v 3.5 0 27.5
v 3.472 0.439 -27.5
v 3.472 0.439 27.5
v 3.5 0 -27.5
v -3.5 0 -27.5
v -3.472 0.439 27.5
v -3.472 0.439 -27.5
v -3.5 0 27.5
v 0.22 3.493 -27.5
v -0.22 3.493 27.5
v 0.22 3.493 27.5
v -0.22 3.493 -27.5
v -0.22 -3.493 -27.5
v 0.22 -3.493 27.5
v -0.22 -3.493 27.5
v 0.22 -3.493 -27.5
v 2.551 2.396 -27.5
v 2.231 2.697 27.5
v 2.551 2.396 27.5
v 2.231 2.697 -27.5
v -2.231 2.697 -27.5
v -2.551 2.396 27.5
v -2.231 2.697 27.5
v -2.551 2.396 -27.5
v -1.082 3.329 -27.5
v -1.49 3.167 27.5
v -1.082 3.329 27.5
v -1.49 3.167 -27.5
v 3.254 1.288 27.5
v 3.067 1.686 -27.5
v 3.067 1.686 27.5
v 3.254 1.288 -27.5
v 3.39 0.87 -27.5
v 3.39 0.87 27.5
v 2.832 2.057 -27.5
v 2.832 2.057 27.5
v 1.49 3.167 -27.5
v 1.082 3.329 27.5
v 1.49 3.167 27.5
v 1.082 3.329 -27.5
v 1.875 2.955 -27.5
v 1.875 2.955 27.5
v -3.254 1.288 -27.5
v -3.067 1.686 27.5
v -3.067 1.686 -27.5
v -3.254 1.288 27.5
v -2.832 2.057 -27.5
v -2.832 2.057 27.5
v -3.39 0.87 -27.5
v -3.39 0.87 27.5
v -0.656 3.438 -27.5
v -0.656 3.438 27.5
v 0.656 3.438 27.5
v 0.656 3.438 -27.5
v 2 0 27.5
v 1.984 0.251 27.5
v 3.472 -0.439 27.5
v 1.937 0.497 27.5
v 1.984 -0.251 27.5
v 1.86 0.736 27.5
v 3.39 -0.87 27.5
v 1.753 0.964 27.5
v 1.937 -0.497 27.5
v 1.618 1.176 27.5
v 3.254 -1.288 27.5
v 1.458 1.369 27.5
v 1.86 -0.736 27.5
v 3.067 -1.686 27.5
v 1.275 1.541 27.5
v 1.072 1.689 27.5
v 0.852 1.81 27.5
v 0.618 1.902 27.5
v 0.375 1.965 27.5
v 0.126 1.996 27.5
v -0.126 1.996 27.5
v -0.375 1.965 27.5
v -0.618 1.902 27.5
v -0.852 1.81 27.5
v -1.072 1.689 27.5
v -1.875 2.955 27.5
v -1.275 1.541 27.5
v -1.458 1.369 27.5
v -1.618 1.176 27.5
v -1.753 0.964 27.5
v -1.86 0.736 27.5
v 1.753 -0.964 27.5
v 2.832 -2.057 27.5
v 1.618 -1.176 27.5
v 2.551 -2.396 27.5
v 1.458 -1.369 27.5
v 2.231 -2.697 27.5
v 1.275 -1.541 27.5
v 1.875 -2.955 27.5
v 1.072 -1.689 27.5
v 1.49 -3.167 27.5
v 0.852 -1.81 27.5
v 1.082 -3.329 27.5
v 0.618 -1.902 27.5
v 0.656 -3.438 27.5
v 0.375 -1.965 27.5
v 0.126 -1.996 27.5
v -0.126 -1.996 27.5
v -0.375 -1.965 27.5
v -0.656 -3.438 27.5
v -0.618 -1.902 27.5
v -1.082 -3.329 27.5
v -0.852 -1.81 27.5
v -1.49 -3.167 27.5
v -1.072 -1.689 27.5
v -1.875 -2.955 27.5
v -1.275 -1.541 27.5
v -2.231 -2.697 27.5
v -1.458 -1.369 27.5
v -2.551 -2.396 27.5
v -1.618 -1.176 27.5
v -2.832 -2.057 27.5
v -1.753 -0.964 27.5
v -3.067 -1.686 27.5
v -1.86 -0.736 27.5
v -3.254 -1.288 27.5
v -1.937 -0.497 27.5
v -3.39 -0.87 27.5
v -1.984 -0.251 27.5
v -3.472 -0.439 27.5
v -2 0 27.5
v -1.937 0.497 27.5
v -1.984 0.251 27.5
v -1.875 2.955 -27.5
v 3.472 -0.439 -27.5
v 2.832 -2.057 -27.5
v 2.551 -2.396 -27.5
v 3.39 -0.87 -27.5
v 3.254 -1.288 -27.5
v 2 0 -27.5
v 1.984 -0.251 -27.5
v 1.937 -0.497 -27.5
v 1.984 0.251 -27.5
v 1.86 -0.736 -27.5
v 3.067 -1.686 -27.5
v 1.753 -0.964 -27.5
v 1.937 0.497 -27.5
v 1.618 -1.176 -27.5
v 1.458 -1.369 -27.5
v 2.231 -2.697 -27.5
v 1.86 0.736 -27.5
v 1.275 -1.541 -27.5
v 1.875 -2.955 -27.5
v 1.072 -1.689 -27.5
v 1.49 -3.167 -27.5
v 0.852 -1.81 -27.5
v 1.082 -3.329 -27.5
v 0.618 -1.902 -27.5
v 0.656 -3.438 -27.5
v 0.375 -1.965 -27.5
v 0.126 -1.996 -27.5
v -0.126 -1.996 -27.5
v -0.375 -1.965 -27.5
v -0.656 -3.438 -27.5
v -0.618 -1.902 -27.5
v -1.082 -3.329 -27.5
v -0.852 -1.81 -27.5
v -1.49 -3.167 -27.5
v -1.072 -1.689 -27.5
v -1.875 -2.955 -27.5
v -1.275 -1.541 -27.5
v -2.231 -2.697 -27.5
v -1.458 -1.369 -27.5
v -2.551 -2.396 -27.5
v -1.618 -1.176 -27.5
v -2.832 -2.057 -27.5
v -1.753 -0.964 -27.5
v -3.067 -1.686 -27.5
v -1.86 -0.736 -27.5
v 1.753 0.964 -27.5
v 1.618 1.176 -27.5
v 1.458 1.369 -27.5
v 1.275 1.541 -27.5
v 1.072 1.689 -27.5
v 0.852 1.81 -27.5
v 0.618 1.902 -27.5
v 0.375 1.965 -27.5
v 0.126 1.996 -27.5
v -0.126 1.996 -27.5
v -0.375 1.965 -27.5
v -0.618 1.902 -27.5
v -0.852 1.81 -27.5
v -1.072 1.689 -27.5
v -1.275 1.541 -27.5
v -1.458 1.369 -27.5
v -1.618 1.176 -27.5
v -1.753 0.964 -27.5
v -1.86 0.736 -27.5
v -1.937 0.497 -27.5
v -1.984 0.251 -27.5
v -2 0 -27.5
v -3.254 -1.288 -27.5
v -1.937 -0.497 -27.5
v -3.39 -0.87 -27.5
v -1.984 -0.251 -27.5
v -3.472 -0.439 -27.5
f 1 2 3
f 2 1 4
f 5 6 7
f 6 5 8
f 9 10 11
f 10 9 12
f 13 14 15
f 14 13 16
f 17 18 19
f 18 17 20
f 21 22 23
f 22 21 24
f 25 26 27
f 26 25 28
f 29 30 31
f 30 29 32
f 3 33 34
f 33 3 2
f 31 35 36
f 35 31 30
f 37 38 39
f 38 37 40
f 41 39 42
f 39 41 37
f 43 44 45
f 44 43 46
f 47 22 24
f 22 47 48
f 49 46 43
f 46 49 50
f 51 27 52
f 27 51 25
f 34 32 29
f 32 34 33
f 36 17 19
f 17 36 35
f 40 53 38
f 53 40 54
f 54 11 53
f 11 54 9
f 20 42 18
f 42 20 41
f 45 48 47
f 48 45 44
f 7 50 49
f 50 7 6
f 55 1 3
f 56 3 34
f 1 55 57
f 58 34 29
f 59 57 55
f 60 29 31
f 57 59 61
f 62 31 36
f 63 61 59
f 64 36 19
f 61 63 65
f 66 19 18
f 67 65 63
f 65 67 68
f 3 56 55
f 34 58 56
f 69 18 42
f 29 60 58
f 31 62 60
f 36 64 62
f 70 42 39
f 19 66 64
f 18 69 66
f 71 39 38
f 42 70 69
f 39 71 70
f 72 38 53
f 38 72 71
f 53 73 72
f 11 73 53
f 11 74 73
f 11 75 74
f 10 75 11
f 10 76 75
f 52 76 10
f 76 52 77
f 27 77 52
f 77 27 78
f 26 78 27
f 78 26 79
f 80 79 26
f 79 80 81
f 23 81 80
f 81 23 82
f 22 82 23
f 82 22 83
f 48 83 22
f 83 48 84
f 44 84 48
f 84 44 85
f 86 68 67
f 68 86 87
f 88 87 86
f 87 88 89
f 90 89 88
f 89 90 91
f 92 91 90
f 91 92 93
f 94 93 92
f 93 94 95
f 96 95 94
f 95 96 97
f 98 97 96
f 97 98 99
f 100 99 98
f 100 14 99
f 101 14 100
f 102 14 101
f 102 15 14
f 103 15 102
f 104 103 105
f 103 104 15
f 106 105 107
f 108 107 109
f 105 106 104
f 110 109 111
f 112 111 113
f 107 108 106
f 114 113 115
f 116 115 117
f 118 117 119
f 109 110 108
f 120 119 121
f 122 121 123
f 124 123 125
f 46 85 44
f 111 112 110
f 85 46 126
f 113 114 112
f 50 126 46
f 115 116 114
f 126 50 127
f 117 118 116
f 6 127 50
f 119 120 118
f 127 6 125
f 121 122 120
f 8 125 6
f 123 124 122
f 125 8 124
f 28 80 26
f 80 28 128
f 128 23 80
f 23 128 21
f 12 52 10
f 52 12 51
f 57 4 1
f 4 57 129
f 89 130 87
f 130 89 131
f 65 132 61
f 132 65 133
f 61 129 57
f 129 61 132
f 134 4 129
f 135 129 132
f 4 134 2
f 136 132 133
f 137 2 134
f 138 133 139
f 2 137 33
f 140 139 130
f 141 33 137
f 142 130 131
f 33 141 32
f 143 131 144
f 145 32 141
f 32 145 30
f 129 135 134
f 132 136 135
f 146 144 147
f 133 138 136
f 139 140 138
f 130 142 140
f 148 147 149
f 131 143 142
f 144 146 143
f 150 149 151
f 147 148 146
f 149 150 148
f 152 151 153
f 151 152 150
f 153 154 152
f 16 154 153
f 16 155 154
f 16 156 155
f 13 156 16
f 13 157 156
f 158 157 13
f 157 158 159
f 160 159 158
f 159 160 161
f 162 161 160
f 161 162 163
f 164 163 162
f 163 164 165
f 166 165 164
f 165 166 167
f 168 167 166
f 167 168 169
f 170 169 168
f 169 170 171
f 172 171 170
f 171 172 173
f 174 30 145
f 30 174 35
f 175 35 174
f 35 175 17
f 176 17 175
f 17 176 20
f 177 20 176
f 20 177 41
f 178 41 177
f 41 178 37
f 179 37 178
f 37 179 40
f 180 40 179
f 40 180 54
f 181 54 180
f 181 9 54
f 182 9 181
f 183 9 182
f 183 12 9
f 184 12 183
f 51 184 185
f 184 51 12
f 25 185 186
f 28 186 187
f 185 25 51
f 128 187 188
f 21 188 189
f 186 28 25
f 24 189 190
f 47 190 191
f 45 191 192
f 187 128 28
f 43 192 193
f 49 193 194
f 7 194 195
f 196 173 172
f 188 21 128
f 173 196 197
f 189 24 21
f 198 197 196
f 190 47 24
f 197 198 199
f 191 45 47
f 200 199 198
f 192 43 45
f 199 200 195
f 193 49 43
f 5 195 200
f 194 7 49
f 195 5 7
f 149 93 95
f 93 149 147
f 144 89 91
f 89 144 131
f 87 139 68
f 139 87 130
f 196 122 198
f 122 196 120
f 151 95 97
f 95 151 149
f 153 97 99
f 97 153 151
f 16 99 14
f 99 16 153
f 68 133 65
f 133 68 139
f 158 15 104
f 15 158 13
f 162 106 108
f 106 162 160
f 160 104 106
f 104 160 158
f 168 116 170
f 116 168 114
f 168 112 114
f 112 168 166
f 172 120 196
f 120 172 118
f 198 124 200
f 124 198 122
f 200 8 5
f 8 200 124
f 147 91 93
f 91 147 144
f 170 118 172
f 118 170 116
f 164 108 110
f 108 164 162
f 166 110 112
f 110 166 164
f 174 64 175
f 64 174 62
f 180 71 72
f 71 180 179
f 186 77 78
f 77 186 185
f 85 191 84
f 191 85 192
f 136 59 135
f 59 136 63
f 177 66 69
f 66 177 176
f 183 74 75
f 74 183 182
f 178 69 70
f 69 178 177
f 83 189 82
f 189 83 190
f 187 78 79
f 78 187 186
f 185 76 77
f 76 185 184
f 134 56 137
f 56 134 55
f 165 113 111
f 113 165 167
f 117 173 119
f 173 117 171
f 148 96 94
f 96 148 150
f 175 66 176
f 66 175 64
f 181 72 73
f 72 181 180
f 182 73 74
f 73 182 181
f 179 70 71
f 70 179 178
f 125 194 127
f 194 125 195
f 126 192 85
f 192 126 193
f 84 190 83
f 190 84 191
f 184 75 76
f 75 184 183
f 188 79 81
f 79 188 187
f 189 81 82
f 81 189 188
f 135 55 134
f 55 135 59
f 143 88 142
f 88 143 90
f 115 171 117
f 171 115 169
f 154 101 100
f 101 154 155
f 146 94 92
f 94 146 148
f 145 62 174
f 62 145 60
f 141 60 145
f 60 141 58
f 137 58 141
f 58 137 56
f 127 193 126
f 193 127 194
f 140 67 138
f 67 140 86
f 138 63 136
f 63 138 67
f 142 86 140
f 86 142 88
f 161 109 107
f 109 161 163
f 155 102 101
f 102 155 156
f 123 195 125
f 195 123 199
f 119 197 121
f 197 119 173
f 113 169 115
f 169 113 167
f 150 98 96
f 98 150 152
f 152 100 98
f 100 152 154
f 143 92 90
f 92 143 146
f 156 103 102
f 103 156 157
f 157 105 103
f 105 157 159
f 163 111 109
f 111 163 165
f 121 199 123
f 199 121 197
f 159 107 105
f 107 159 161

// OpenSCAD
$fn = 50;


difference() {
	union() {
		translate(v = [0, 0, -27.5000000000]) {
			cylinder(h = 55, r = 3.5000000000);
		}
	}
	union() {
		translate(v = [0, 0, -100.0000000000]) {
			cylinder(h = 200, r = 2);
		}
	}
}
